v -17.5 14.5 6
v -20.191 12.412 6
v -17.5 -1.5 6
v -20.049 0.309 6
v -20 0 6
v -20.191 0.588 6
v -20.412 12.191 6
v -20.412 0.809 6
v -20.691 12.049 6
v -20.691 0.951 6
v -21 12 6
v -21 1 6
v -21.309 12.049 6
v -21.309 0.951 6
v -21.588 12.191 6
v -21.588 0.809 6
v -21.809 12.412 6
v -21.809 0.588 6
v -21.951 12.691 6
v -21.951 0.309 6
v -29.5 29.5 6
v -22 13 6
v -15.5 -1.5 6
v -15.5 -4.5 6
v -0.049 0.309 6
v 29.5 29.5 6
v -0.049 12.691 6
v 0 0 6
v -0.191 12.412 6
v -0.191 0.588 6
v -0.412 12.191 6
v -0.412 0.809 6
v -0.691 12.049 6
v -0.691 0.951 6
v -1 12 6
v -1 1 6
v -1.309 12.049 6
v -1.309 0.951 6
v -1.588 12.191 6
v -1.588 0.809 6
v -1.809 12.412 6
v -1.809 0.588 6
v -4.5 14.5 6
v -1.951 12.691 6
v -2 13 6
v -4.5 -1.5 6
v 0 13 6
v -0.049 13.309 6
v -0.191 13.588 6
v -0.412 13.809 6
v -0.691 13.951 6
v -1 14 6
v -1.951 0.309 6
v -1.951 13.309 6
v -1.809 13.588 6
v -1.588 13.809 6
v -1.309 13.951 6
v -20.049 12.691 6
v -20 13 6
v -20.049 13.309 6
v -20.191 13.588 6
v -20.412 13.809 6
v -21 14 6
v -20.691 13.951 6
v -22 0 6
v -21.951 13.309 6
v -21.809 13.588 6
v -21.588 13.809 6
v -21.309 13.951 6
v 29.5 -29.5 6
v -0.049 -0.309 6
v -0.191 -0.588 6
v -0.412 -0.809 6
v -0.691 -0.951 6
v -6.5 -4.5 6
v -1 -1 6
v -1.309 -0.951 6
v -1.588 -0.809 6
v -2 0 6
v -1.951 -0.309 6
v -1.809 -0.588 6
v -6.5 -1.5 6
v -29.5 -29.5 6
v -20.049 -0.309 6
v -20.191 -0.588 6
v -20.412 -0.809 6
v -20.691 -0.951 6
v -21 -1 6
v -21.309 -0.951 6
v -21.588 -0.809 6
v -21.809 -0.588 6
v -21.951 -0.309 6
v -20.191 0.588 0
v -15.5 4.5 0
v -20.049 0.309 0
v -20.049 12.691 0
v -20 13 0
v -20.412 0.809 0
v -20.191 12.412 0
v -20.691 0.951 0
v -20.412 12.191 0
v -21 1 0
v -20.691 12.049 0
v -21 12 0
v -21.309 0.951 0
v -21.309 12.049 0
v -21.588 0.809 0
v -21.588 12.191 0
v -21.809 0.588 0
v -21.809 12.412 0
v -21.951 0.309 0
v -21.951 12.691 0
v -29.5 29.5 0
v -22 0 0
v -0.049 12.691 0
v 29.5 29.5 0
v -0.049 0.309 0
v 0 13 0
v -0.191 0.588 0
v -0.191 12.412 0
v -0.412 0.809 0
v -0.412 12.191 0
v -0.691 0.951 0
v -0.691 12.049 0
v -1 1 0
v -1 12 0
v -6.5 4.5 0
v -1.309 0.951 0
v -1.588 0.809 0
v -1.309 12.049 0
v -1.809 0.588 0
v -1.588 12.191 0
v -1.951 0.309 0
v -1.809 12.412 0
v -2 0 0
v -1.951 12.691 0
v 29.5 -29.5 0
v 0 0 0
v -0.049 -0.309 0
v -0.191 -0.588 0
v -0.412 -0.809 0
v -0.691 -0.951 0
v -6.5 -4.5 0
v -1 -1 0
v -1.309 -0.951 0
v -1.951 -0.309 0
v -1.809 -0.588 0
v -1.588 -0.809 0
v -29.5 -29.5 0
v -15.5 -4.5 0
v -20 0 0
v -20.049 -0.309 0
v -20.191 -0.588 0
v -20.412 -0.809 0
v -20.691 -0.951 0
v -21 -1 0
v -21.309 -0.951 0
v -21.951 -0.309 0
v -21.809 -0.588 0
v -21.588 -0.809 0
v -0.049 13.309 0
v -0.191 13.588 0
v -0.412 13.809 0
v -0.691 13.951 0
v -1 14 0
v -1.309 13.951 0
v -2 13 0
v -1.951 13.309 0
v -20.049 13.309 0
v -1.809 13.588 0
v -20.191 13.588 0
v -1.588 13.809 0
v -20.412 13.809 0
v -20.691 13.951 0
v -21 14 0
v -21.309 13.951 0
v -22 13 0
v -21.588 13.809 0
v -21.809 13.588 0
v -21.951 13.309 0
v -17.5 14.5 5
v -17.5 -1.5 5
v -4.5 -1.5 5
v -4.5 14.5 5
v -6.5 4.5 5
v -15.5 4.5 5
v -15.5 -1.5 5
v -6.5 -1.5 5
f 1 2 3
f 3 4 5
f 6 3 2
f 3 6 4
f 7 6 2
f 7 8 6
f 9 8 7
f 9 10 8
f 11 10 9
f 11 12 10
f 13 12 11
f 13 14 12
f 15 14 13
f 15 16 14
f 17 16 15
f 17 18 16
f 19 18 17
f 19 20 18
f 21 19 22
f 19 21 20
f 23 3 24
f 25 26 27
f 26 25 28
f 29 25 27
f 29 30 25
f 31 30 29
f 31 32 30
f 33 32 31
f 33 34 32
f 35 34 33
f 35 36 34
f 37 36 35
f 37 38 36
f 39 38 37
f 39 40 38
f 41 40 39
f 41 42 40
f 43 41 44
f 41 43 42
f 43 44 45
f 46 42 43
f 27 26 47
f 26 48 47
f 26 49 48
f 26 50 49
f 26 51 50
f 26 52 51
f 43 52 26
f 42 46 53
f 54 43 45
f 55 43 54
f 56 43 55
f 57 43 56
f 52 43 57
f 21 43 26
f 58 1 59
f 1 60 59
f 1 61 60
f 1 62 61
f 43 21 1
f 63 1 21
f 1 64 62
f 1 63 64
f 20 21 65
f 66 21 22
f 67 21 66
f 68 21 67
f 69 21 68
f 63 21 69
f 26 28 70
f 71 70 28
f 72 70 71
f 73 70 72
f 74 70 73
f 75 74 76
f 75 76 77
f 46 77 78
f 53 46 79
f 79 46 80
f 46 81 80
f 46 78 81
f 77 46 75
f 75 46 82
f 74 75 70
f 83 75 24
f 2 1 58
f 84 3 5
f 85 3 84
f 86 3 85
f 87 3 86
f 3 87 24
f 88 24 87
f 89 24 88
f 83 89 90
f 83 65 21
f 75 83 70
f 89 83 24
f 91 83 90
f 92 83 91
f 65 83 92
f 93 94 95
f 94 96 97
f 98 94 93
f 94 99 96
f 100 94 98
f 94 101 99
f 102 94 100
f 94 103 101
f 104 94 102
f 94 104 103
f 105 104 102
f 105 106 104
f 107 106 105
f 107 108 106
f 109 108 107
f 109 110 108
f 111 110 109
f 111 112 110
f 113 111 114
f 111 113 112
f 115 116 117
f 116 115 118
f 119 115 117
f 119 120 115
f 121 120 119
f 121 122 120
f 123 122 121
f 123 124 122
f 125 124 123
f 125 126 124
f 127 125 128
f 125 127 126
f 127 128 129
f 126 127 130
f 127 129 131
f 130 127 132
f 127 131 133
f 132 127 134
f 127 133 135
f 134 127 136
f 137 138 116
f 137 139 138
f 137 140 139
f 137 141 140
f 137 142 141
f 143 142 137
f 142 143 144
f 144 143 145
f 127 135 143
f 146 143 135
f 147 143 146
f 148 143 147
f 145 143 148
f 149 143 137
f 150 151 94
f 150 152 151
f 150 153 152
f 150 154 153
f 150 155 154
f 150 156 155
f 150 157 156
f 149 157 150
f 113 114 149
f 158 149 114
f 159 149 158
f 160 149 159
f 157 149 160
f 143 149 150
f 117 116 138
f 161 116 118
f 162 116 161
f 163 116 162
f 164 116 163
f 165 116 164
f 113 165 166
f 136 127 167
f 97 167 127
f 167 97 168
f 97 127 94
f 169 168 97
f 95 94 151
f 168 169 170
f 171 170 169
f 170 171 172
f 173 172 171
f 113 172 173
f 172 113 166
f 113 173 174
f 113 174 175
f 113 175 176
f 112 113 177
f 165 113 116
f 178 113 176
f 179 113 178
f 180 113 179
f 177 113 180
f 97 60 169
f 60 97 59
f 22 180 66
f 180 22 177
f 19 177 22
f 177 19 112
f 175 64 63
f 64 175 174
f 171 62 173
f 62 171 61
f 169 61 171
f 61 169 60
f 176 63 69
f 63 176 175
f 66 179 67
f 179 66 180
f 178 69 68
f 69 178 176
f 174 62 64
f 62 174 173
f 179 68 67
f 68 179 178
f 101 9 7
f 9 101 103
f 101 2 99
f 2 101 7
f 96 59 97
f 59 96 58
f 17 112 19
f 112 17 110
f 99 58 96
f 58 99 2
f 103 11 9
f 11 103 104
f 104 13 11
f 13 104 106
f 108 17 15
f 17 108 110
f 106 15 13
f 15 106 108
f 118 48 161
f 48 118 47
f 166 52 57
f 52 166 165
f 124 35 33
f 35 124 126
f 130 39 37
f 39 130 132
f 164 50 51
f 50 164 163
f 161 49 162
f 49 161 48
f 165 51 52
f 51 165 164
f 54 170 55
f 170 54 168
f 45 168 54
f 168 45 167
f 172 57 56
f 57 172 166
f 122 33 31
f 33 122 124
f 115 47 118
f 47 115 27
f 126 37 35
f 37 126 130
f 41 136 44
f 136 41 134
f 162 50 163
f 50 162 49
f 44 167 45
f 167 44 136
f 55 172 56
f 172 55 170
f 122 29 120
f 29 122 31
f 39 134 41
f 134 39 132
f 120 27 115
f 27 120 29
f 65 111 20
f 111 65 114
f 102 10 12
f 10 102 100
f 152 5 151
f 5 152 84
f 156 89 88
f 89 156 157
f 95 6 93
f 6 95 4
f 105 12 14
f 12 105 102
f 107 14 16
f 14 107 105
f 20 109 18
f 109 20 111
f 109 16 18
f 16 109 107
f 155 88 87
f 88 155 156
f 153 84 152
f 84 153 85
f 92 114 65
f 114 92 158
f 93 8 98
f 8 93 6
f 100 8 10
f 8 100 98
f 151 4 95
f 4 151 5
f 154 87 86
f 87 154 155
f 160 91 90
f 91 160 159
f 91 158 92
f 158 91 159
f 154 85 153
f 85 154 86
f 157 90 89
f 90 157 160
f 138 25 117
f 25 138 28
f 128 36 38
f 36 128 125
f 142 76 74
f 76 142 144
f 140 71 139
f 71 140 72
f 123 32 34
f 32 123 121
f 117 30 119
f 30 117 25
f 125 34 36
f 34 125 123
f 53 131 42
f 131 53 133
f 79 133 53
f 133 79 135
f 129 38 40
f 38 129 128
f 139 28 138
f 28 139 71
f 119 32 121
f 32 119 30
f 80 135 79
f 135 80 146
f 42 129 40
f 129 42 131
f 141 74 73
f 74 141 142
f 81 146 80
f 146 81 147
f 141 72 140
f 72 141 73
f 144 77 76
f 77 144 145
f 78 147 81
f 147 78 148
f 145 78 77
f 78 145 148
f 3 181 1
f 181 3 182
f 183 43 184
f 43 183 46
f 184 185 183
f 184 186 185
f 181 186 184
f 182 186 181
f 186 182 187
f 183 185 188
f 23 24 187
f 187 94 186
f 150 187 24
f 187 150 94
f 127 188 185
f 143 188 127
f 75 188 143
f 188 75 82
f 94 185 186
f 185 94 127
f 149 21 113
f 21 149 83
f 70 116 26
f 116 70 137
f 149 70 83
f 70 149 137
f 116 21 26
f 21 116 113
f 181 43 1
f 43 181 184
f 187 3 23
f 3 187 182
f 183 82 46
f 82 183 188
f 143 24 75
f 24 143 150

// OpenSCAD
// file: alsaCam.scad
//creaAlsaCamara(5);
alsaCamTorR = 1;

// creaAlsaCamara(10);

module creaAlsaCamara( intAlsaCamH )
{    
    difference(){

        translate([-13,-2.9,0])
        cube([26,17,intAlsaCamH]);

        //Tornillos camara
        translate([-10,12,-0.1])
        cylinder(r=alsaCamTorR,intAlsaCamH+0.4,$fn=20);
        translate([10,12,-0.1])
        cylinder(r=alsaCamTorR,intAlsaCamH+0.4,$fn=20);
        translate([-10,-1,-0.1])
        cylinder(r=alsaCamTorR,intAlsaCamH+0.4,$fn=20);
        translate([10,-1,-0.1])
        cylinder(r=alsaCamTorR,intAlsaCamH+0.4,$fn=20);

    }
}
// main file
include <alsaCam.scad>

genW = 59;
genD = 6;

camLenW = 9;
camLenDesv = 11;



difference()
{
    
    translate([-camLenDesv,1,0])
    creaAlsaCamara(genD);
    
    translate([-((camLenW+4)/2)-camLenDesv,-2.5,7-2])
    cube([camLenW+4,20,4]);    
    
    translate([-(camLenW/2)-camLenDesv,-camLenW/2,-0.1])
    cube([camLenW,camLenW,8]);
}    
    
difference()
{
    translate([-genW/2,-genW/2,0])
    cube([genW,genW,genD]);
    
    translate([-12-camLenDesv,-1.5,-0.1])
    cube([24,16,genD+1+5]);
    
    translate([-(camLenW/2)-camLenDesv,-(camLenW/2),-0.1])
    cube([camLenW,camLenW,8]);
    
}
